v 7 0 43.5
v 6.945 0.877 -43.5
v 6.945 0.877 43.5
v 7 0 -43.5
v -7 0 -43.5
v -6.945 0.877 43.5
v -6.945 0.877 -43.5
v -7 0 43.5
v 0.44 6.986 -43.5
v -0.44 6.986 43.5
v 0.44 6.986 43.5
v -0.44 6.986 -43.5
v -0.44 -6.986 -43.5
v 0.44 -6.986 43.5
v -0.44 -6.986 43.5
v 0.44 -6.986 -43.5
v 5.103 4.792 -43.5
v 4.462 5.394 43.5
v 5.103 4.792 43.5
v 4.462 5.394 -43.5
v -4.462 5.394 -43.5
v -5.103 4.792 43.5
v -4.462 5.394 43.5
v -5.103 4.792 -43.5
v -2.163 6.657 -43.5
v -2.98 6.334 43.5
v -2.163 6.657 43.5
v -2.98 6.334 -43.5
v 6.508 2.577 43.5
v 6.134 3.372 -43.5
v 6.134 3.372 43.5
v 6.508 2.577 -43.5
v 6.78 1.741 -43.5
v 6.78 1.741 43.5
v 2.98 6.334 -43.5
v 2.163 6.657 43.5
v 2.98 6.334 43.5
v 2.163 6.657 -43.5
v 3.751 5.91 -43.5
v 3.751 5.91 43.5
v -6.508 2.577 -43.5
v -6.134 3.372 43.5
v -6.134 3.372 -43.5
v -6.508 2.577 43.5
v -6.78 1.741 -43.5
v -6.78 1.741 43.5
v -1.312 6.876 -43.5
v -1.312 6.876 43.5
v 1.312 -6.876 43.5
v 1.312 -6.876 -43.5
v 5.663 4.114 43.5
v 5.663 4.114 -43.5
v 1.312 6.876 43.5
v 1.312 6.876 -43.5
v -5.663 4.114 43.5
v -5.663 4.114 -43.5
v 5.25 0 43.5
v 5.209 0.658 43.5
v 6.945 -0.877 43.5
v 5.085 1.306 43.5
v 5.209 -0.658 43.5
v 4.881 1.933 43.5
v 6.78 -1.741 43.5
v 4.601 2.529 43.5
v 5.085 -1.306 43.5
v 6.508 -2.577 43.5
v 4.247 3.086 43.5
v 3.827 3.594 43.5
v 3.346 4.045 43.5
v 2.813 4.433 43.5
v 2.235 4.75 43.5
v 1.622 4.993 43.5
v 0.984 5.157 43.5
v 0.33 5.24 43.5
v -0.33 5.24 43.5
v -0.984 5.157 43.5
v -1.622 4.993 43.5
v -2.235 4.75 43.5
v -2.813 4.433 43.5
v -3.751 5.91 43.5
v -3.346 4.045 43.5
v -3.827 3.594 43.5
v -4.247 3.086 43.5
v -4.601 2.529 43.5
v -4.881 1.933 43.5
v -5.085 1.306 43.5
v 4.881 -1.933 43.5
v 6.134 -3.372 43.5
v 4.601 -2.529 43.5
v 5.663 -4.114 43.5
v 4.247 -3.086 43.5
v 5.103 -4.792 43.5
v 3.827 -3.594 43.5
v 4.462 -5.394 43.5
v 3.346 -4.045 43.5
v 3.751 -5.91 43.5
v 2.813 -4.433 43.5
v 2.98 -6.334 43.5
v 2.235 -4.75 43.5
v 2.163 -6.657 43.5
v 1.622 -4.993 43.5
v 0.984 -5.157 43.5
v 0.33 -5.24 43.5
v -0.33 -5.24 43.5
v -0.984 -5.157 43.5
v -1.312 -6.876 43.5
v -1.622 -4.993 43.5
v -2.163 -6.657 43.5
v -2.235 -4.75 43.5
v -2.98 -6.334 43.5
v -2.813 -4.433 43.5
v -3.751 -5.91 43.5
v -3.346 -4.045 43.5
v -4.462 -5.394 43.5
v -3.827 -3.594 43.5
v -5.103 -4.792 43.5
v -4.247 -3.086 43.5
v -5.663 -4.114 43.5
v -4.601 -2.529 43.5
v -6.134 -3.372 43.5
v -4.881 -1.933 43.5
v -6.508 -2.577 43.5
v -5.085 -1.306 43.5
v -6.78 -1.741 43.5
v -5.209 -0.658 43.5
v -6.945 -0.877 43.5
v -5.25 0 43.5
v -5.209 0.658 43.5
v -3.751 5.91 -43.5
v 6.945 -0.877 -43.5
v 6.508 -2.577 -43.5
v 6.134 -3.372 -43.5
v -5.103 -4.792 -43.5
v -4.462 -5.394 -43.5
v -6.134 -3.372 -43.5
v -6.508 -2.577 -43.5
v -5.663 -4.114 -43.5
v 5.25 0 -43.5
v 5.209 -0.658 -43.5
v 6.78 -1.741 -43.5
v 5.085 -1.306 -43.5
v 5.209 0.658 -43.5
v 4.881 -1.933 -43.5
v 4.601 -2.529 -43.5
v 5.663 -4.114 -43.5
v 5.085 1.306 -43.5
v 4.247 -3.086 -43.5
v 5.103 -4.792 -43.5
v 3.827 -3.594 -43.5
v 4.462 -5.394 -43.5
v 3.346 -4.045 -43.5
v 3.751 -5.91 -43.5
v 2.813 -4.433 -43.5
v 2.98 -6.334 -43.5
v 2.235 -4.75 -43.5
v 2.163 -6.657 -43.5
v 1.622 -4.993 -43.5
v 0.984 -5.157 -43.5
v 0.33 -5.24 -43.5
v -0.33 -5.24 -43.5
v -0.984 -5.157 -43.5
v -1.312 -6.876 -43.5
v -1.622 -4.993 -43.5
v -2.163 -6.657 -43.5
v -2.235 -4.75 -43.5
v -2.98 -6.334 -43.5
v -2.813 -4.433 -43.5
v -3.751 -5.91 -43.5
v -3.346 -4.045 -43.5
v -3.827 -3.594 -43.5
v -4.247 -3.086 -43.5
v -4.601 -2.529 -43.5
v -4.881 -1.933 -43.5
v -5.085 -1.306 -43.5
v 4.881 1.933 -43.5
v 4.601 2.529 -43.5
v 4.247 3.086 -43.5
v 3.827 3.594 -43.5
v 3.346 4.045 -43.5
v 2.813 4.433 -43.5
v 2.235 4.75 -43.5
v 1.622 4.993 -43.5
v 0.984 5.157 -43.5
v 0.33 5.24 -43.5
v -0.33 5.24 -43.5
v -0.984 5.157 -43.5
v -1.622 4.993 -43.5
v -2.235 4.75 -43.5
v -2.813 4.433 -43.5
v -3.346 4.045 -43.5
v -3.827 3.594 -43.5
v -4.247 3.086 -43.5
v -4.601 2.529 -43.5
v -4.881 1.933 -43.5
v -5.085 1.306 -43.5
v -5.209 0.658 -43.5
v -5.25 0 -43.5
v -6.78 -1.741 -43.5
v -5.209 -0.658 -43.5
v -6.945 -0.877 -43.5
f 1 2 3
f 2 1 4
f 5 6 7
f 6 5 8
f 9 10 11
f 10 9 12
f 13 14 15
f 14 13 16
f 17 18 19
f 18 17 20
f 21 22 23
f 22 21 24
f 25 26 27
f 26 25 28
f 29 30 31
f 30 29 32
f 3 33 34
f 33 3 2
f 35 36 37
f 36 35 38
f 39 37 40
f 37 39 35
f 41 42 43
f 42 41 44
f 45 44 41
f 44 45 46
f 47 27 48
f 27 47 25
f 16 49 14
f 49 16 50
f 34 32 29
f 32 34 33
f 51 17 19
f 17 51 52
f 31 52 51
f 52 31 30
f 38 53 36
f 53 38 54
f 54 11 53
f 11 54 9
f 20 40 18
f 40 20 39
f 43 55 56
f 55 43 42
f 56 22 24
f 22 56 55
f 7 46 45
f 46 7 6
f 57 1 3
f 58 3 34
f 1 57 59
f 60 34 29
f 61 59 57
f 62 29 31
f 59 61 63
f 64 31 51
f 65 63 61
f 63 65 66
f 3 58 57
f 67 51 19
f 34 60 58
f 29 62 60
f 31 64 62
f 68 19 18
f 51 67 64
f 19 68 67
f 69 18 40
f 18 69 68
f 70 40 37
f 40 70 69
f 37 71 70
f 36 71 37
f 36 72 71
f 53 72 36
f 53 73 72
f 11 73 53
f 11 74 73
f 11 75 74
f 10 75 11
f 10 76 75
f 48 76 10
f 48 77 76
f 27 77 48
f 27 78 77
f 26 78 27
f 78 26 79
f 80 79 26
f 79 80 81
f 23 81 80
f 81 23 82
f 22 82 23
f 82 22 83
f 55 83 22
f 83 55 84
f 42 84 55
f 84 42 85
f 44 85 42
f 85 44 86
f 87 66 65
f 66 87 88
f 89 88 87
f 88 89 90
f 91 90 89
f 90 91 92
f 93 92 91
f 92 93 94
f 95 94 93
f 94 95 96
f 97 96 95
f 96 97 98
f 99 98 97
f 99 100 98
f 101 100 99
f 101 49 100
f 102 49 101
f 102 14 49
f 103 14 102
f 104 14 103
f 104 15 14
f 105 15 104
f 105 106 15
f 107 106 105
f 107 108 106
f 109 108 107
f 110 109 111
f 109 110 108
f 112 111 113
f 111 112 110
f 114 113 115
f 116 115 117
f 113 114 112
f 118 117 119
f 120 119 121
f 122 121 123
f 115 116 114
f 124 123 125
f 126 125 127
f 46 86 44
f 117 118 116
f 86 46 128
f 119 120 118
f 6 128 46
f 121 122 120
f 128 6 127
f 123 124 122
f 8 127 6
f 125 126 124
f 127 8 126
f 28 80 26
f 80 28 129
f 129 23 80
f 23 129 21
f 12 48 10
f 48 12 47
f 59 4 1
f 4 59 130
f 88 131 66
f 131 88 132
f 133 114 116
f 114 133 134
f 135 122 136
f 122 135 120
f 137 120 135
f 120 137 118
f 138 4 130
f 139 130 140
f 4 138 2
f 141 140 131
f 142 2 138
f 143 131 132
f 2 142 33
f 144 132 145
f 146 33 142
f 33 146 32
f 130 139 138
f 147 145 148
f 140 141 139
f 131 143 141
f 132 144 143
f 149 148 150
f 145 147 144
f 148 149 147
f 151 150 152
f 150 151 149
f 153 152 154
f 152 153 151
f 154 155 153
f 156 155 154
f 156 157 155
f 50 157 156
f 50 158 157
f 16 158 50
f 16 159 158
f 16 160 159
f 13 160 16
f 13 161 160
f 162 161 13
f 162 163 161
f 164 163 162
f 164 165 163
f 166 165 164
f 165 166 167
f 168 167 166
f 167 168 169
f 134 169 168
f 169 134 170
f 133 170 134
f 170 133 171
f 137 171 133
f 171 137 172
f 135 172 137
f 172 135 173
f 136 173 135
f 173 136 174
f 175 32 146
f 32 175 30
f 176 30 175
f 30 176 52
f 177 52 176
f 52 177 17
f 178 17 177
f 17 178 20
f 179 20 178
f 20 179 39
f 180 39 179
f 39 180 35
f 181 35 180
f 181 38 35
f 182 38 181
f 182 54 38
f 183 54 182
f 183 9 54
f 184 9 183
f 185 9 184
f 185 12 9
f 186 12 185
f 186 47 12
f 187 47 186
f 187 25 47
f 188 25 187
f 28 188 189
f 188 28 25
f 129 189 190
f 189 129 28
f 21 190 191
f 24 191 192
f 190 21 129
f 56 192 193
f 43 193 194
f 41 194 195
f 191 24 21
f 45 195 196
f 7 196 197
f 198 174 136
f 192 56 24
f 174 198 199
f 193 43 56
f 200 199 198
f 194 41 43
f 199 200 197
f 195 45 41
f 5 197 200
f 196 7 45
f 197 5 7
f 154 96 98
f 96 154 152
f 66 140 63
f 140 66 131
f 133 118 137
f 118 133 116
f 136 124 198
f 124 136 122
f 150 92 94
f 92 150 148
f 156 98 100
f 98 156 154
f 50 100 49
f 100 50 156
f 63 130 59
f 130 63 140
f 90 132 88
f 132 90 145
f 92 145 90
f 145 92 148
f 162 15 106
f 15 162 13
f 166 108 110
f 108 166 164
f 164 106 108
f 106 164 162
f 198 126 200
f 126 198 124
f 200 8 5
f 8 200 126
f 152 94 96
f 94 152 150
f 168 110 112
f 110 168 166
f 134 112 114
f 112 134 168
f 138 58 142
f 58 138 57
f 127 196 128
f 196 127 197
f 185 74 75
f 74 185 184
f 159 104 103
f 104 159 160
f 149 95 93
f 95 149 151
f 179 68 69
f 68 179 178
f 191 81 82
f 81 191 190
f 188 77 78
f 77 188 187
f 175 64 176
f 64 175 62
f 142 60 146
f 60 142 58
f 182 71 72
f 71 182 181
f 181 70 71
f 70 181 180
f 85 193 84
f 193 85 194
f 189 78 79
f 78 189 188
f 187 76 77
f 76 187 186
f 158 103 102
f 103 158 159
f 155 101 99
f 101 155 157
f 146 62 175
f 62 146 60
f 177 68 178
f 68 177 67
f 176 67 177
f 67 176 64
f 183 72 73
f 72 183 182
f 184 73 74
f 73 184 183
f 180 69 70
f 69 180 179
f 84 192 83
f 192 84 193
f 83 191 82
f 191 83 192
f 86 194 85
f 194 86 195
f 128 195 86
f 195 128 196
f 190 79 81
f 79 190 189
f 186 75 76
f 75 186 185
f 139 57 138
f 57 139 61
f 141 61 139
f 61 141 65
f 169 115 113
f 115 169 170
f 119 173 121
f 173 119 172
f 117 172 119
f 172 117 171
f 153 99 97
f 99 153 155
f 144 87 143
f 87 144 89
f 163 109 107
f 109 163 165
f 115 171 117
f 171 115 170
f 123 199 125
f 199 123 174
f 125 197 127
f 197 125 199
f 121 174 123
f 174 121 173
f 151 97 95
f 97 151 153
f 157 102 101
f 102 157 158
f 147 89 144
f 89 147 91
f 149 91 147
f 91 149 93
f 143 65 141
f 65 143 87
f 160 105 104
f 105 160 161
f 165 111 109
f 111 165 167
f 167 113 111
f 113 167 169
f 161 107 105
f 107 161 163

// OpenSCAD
$fn = 50;


difference() {
	union() {
		translate(v = [0, 0, -43.5000000000]) {
			cylinder(h = 87, r = 7.0000000000);
		}
	}
	union() {
		translate(v = [0, 0, -100.0000000000]) {
			cylinder(h = 200, r = 5.2500000000);
		}
	}
}
